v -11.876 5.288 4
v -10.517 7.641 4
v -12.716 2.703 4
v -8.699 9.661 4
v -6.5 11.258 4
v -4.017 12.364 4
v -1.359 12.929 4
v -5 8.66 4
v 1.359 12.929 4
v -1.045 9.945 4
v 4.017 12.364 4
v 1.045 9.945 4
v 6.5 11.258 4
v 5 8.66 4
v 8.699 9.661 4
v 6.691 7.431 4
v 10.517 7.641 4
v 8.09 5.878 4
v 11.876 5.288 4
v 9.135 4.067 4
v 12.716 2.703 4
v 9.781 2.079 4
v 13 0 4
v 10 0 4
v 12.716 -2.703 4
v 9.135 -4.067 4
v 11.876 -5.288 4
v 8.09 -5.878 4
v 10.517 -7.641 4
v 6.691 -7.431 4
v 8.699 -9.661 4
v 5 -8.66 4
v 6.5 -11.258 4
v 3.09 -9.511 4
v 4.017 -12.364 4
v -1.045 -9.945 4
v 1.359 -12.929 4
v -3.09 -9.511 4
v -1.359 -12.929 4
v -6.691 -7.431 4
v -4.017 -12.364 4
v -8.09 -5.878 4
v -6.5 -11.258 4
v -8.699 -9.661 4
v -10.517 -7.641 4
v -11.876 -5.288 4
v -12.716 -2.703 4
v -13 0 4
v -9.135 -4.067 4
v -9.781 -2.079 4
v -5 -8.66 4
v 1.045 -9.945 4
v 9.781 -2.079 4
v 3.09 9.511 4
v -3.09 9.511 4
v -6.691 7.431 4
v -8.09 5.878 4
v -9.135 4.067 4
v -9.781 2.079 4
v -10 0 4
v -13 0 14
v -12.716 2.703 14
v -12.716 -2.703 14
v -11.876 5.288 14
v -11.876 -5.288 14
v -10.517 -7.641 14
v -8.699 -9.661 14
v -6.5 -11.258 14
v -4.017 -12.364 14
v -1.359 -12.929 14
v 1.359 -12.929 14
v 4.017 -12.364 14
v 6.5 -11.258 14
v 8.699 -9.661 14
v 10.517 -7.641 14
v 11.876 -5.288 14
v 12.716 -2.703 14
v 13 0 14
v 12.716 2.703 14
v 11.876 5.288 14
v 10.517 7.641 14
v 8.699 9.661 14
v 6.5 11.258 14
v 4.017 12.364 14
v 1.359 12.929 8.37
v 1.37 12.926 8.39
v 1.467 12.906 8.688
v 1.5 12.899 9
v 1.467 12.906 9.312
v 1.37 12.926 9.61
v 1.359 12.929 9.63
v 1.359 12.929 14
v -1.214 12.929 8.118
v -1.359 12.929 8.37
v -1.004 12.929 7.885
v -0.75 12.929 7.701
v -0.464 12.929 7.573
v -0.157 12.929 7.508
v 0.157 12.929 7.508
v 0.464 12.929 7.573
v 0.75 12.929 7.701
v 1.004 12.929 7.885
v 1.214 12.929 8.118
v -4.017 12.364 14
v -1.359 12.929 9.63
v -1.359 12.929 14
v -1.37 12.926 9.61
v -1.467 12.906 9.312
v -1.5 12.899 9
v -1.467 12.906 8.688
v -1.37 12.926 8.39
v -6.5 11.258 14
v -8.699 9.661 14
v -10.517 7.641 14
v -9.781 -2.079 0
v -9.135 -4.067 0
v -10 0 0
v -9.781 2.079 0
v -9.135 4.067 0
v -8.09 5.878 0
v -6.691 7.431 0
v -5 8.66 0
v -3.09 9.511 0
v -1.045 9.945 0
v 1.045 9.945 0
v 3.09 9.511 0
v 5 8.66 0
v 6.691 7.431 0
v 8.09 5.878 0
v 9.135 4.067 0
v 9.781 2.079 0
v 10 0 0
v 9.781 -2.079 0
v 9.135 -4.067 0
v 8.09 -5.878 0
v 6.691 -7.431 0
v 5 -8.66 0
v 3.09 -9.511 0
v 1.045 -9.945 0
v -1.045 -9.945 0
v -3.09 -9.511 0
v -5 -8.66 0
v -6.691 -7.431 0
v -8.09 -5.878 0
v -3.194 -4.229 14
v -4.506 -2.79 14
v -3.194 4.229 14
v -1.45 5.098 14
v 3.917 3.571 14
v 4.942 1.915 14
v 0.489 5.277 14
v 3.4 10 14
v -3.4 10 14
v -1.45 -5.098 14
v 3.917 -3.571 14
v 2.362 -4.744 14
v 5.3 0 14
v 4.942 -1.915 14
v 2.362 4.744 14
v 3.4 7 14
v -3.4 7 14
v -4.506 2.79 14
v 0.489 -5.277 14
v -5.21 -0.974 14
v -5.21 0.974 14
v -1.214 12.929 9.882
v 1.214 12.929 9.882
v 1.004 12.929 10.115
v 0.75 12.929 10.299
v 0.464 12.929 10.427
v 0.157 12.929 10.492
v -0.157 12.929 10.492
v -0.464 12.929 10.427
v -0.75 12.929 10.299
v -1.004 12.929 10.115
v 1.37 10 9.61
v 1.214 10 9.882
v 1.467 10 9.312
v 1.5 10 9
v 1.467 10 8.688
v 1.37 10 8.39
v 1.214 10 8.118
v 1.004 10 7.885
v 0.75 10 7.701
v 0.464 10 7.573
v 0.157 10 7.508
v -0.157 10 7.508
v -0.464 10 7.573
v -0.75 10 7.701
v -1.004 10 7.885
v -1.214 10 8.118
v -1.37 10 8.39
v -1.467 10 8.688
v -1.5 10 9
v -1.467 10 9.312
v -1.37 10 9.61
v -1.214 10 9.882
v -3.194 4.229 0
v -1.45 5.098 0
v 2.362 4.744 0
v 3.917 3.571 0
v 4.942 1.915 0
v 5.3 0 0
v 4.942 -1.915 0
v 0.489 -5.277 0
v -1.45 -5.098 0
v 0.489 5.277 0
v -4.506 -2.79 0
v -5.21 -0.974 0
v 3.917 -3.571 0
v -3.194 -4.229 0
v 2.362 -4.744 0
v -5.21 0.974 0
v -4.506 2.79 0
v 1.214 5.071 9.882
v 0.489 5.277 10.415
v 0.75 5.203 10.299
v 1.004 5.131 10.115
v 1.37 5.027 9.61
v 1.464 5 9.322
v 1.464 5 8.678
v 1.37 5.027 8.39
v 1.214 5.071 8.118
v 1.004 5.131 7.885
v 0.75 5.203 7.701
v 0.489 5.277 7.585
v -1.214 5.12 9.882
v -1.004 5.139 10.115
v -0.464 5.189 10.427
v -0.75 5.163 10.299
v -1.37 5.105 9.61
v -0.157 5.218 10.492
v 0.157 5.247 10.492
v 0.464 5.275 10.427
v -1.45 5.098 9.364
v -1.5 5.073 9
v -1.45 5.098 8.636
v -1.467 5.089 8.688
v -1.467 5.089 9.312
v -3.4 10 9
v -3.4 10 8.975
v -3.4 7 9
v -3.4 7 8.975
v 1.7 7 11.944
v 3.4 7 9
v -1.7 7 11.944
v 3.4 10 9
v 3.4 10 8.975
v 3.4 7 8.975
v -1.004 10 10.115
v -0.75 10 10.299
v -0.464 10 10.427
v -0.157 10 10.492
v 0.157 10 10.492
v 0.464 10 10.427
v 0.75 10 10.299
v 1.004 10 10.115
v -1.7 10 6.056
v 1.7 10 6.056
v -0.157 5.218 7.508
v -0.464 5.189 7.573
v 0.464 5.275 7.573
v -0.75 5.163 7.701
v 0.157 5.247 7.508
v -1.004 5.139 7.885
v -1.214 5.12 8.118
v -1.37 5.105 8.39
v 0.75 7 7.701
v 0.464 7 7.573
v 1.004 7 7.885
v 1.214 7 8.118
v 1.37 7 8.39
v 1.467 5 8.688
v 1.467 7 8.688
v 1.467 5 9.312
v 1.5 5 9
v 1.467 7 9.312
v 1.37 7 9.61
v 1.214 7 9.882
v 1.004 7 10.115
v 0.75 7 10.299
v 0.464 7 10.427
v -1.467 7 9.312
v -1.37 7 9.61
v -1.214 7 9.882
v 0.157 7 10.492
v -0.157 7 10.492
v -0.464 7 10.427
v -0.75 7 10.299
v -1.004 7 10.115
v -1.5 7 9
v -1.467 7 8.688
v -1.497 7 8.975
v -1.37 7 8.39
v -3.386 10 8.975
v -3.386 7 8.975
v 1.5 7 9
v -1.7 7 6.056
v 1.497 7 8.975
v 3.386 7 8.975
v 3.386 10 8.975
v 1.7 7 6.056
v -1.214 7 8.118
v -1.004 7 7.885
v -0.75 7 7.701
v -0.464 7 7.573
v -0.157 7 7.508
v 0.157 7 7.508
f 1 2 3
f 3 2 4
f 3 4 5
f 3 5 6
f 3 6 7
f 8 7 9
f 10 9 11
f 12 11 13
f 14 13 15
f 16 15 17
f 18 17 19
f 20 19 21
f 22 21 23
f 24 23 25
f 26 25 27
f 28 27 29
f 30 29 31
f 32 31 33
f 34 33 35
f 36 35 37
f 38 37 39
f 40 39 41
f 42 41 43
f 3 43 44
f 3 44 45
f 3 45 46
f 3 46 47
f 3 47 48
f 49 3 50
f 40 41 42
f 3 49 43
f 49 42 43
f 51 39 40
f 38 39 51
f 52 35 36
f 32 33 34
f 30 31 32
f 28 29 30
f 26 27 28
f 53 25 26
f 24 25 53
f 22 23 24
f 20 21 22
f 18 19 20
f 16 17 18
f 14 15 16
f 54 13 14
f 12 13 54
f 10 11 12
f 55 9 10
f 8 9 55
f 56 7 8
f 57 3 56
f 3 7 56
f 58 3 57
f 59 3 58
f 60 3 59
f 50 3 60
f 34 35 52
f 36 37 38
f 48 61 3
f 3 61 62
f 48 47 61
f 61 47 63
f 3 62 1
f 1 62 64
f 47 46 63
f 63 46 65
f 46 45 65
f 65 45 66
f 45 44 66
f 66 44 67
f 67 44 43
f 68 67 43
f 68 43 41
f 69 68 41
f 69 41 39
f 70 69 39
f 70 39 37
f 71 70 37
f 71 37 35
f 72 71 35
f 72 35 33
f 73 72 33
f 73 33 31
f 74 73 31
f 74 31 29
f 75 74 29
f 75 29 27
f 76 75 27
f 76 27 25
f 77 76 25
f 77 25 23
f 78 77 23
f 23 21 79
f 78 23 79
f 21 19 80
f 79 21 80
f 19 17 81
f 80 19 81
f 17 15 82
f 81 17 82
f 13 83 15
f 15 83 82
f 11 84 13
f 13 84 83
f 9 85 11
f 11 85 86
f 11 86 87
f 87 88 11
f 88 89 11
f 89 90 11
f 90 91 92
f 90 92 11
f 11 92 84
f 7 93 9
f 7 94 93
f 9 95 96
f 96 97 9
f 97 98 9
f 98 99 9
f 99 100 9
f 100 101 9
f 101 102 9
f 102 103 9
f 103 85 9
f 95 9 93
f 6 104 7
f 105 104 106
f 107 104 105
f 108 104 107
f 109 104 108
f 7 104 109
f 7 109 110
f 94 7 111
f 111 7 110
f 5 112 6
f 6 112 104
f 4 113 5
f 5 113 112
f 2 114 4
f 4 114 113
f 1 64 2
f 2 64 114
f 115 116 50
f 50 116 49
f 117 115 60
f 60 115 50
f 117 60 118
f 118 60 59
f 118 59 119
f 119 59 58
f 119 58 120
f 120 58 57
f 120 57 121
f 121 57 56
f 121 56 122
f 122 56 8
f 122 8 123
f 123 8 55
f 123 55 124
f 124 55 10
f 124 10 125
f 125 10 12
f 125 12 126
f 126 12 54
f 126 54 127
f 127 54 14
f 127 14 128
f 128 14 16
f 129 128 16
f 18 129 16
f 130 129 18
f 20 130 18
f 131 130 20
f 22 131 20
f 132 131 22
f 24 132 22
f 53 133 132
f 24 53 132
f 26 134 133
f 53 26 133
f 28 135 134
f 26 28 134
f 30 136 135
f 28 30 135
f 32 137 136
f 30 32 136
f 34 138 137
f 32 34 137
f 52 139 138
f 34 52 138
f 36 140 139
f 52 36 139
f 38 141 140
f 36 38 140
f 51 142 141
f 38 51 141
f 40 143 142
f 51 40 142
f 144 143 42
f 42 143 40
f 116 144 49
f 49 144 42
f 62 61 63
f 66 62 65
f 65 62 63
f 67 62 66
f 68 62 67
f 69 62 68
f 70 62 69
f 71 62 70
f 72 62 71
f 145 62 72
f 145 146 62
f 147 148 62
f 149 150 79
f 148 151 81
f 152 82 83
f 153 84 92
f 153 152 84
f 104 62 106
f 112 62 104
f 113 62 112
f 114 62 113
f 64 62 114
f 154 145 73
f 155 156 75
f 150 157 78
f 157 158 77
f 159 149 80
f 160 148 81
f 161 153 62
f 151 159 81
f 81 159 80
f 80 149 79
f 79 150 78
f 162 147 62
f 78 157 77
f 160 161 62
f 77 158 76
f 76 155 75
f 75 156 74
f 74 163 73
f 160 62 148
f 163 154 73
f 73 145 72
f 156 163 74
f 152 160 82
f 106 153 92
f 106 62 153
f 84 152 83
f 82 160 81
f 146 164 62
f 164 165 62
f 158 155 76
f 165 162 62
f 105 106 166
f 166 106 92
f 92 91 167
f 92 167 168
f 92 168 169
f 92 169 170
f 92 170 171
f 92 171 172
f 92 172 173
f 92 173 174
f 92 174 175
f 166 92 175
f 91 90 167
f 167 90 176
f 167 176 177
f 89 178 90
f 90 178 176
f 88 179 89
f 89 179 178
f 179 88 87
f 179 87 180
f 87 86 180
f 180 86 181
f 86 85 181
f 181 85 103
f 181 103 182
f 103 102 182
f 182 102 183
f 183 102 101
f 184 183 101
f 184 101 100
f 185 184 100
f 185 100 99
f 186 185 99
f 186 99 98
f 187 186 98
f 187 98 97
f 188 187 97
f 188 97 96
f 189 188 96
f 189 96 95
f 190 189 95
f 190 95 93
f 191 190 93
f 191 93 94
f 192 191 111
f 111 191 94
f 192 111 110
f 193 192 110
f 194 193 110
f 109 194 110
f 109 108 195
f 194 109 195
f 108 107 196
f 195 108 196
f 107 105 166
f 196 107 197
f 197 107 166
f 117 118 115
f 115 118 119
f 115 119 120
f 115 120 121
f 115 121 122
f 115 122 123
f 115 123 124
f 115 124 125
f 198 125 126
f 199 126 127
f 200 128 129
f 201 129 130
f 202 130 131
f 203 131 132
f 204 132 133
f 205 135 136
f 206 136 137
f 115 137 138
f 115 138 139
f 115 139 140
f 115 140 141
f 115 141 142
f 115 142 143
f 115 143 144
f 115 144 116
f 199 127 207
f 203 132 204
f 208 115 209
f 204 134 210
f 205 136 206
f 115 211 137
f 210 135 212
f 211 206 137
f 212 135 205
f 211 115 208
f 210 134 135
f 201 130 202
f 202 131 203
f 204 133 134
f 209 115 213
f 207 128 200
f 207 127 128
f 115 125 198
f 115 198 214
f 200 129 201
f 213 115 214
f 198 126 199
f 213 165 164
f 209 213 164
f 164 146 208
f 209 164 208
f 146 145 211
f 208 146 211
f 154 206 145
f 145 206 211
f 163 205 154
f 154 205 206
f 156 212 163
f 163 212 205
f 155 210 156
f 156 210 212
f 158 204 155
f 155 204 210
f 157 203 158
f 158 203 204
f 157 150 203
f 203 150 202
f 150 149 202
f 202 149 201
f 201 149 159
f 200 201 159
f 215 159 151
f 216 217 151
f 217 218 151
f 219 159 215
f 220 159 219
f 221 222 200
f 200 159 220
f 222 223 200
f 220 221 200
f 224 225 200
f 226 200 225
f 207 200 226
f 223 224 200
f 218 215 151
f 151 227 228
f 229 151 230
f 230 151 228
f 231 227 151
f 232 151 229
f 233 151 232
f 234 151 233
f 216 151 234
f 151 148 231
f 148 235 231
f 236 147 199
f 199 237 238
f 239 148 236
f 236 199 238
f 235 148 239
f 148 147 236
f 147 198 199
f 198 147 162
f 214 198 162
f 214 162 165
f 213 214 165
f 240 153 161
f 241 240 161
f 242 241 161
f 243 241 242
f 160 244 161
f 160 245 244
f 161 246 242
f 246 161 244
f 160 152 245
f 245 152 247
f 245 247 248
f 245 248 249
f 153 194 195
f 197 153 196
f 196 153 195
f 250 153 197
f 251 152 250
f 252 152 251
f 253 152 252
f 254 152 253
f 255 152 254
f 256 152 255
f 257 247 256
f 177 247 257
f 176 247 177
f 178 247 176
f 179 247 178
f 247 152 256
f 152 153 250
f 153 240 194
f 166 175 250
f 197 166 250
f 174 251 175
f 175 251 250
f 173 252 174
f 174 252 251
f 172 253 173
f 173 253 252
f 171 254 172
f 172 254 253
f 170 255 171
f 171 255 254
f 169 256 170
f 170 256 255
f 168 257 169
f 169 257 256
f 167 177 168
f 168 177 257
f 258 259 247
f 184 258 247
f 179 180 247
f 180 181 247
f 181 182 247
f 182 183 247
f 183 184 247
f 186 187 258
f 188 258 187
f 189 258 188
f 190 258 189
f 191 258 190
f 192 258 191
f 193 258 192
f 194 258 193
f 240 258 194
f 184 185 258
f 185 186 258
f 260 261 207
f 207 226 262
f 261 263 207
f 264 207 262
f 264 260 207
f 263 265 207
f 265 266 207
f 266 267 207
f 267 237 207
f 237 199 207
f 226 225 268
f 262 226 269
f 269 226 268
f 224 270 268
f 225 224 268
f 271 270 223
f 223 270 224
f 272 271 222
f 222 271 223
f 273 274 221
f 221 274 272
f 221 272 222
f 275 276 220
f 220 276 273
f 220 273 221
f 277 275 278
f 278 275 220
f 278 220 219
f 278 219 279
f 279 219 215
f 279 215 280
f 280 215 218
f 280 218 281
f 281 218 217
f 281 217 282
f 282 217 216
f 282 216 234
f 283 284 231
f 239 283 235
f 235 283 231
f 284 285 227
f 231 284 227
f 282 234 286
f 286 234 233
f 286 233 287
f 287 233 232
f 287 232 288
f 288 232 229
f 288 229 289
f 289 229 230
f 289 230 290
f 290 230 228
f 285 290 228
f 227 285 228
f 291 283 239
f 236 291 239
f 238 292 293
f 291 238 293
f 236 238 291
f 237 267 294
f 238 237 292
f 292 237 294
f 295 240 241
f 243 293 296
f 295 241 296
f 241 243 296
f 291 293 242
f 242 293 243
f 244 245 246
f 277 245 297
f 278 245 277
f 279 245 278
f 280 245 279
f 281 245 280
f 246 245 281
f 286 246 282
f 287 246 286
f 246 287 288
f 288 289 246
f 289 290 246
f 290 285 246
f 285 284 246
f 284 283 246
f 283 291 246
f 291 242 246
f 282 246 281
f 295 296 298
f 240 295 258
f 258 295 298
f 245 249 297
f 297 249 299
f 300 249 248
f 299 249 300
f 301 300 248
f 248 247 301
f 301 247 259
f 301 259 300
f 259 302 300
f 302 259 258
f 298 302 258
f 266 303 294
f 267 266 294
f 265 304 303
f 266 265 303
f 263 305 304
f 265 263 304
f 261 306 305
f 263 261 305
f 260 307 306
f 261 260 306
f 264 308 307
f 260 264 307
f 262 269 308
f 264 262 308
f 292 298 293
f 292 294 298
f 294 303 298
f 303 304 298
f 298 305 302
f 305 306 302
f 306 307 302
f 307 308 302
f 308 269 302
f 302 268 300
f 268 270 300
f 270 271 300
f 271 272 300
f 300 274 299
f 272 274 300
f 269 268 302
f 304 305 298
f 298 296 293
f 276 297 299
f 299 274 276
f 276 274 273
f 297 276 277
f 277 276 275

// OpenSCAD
module axes_support2() {
	union() {
		difference() {
			color("black") cylinder(h=4, r=10, center=false);
			color("red") cylinder(h=4, r=5.3, center=false);
		}

		translate([0, 0, 4]) difference() {
			cylinder(h=10, r=13, center=false);
			color("red") cylinder(h=10, r=5.3, center=false);
			translate([0, 8.5, 7.95]) color("gray") cube([6.8, 3, 5.95], center=true);
			translate([0, 8.5, 5]) rotate([-90, 0, 0]) color("green") cylinder(h=3, r=3.4, $fn=6, center=true);
			translate([0,  5, 5]) rotate([-90, 0, 0]) color("blue") cylinder(h=8, r=1.5, $fn=30);
		}
		
	}
}

axes_support2();
